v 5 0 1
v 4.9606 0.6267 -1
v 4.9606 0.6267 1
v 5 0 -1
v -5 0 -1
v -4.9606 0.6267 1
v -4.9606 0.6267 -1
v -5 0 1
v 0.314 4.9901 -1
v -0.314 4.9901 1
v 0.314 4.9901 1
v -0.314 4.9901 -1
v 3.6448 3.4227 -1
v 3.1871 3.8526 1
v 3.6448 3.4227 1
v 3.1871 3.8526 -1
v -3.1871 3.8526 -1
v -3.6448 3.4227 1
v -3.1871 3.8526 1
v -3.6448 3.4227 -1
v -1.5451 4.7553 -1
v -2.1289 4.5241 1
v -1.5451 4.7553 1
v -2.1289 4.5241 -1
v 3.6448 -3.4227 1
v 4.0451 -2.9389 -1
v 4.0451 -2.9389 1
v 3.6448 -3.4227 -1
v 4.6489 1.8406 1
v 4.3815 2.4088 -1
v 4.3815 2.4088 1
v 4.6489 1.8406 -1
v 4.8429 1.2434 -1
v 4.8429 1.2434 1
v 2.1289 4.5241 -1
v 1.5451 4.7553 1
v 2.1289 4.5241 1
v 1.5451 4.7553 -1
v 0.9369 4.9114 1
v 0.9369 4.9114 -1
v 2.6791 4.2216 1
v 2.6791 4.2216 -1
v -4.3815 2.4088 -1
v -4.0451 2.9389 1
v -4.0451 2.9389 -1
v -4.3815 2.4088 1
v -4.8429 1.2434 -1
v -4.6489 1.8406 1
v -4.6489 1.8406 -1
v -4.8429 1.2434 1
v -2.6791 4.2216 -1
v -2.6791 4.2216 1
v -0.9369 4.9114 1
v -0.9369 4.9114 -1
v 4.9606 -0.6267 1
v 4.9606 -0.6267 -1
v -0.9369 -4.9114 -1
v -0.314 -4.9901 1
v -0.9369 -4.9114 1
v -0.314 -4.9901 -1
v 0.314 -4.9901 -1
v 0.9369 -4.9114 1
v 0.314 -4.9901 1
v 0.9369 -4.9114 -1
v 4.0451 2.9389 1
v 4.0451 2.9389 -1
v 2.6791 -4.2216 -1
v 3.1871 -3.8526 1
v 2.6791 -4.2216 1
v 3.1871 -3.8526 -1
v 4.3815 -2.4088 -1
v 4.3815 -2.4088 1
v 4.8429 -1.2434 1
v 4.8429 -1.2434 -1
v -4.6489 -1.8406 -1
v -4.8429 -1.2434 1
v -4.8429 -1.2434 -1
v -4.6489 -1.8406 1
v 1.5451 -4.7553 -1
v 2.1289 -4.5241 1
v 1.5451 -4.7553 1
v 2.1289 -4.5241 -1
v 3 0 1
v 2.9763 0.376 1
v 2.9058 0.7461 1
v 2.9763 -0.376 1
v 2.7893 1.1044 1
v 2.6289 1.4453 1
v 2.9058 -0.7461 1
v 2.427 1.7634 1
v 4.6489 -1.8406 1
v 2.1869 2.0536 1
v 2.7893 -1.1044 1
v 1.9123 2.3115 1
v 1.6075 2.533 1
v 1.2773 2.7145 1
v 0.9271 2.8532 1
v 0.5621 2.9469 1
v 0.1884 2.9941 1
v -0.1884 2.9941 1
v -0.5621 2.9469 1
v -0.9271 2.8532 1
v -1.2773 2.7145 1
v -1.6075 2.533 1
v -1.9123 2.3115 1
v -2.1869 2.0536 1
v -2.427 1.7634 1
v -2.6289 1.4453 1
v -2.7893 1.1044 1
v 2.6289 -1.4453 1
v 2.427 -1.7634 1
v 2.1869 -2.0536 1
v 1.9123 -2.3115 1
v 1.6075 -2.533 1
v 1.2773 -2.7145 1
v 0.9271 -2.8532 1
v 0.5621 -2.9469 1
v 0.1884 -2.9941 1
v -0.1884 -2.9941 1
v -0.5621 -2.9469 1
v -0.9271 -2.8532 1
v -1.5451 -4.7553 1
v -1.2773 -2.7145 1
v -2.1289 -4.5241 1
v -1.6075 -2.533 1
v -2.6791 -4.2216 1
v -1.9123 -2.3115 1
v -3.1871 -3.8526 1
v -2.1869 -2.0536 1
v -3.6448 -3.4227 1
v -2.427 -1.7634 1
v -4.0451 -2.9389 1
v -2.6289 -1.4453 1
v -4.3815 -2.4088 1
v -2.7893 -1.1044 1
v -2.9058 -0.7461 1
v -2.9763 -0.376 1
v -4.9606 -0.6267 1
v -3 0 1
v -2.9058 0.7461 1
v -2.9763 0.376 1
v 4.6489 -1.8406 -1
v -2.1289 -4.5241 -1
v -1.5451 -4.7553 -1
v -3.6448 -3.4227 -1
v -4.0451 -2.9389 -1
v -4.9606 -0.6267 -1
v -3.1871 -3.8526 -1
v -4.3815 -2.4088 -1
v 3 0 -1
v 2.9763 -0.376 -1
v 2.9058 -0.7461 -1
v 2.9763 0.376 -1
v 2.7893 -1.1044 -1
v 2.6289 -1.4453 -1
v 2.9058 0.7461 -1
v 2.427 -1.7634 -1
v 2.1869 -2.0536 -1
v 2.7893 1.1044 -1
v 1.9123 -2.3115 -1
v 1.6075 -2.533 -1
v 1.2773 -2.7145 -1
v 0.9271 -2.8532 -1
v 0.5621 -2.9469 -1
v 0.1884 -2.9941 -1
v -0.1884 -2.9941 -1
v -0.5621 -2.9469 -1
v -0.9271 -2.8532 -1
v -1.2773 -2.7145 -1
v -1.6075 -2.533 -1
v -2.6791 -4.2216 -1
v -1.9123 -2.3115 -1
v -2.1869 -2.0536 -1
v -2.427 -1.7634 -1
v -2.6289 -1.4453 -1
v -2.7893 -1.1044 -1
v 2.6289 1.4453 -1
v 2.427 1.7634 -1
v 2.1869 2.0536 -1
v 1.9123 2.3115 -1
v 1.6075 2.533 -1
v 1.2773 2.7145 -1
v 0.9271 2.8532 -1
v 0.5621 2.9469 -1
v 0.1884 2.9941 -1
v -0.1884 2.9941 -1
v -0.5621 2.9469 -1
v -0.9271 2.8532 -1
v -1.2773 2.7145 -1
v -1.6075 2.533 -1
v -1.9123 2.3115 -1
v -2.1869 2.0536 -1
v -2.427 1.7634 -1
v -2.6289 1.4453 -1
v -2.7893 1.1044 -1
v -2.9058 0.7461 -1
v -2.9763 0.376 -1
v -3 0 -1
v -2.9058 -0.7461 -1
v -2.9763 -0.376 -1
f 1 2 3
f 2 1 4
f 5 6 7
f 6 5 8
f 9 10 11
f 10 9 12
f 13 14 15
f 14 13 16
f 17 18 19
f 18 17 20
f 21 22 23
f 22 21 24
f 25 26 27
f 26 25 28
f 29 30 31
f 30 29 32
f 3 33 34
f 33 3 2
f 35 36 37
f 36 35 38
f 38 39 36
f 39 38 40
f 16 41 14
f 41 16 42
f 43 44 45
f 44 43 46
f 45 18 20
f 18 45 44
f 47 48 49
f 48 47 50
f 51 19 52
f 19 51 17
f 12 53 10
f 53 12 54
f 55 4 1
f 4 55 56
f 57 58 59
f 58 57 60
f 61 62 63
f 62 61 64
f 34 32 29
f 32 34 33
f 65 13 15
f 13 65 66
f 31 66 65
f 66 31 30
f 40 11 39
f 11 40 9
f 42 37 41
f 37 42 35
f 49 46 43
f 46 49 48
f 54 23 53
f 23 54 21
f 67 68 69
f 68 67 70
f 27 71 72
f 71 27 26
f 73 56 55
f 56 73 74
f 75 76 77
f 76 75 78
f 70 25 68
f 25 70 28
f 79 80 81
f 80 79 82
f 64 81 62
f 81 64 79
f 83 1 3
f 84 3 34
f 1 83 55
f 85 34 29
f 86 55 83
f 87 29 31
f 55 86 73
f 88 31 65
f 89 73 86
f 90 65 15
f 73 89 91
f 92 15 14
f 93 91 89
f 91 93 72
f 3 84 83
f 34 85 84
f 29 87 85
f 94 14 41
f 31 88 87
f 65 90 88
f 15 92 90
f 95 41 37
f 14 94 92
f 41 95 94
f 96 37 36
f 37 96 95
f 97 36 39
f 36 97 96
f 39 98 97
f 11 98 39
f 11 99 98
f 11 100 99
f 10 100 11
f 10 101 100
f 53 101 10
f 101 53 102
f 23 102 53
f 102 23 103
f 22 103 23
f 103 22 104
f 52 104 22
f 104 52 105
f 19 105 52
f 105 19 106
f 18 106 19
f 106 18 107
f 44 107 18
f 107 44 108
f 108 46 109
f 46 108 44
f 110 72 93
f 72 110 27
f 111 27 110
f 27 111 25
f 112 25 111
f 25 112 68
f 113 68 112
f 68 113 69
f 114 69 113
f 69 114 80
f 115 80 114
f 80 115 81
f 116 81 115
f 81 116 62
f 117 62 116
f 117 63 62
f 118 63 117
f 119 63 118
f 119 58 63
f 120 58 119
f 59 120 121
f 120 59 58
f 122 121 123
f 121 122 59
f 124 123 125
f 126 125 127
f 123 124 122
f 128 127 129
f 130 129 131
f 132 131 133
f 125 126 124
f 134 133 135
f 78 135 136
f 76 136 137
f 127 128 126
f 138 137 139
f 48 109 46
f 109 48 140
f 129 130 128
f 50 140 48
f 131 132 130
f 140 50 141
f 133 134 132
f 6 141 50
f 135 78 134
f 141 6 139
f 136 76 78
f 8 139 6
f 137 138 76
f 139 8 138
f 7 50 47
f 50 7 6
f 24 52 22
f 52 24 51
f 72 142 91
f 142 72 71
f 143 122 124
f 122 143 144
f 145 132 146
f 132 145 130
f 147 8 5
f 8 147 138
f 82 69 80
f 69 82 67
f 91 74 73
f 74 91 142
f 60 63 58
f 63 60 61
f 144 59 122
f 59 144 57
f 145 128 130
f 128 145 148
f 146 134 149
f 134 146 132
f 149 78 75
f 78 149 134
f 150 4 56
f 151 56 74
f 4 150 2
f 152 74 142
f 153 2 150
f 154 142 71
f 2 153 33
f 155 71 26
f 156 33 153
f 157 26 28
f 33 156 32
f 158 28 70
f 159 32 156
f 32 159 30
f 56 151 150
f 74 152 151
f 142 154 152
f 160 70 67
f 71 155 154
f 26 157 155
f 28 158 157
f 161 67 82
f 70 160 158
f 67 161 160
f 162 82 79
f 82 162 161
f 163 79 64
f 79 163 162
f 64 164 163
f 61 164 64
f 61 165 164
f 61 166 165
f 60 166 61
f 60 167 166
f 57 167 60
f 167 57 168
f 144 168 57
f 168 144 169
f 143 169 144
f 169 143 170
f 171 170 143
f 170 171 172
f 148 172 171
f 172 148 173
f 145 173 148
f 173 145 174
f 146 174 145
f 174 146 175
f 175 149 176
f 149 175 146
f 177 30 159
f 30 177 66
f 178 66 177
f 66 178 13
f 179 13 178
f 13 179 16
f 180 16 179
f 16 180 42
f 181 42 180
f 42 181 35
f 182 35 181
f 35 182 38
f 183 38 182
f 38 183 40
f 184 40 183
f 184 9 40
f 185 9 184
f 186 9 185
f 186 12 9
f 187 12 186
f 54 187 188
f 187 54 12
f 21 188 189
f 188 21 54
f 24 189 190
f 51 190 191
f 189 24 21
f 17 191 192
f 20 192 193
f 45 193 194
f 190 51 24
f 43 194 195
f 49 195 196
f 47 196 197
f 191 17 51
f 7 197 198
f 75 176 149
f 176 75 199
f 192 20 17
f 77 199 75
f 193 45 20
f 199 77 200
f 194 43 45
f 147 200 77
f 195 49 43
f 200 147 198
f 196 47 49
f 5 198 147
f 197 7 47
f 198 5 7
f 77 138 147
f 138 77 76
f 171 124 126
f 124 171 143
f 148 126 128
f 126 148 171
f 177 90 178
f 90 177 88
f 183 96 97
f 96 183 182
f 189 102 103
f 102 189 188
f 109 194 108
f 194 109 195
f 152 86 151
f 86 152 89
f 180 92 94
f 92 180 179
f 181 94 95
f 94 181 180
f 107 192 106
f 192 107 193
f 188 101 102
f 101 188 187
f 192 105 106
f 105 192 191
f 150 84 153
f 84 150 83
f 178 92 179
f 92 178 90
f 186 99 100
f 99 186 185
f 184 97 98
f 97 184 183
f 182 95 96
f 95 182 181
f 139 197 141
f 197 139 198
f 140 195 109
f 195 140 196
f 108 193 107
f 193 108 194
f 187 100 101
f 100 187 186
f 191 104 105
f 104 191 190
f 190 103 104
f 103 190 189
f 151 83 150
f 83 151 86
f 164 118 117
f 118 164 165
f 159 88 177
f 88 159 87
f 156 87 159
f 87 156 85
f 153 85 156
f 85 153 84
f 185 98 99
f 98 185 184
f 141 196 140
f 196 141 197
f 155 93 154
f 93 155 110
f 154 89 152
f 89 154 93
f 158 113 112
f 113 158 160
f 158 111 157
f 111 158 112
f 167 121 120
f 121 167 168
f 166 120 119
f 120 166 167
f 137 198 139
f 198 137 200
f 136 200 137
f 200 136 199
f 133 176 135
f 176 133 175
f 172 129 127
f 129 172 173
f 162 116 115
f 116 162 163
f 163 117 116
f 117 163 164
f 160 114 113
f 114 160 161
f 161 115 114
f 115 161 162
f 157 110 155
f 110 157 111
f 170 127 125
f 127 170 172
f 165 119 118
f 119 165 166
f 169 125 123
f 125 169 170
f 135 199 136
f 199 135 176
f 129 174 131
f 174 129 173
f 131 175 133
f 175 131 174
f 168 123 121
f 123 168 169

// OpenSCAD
$fn = 50;


difference() {
	union() {
		translate(v = [0, 0, -1.0000000000]) {
			cylinder(h = 2, r = 5.0000000000);
		}
	}
	union() {
		translate(v = [0, 0, -100.0000000000]) {
			cylinder(h = 200, r = 3.0000000000);
		}
	}
}
